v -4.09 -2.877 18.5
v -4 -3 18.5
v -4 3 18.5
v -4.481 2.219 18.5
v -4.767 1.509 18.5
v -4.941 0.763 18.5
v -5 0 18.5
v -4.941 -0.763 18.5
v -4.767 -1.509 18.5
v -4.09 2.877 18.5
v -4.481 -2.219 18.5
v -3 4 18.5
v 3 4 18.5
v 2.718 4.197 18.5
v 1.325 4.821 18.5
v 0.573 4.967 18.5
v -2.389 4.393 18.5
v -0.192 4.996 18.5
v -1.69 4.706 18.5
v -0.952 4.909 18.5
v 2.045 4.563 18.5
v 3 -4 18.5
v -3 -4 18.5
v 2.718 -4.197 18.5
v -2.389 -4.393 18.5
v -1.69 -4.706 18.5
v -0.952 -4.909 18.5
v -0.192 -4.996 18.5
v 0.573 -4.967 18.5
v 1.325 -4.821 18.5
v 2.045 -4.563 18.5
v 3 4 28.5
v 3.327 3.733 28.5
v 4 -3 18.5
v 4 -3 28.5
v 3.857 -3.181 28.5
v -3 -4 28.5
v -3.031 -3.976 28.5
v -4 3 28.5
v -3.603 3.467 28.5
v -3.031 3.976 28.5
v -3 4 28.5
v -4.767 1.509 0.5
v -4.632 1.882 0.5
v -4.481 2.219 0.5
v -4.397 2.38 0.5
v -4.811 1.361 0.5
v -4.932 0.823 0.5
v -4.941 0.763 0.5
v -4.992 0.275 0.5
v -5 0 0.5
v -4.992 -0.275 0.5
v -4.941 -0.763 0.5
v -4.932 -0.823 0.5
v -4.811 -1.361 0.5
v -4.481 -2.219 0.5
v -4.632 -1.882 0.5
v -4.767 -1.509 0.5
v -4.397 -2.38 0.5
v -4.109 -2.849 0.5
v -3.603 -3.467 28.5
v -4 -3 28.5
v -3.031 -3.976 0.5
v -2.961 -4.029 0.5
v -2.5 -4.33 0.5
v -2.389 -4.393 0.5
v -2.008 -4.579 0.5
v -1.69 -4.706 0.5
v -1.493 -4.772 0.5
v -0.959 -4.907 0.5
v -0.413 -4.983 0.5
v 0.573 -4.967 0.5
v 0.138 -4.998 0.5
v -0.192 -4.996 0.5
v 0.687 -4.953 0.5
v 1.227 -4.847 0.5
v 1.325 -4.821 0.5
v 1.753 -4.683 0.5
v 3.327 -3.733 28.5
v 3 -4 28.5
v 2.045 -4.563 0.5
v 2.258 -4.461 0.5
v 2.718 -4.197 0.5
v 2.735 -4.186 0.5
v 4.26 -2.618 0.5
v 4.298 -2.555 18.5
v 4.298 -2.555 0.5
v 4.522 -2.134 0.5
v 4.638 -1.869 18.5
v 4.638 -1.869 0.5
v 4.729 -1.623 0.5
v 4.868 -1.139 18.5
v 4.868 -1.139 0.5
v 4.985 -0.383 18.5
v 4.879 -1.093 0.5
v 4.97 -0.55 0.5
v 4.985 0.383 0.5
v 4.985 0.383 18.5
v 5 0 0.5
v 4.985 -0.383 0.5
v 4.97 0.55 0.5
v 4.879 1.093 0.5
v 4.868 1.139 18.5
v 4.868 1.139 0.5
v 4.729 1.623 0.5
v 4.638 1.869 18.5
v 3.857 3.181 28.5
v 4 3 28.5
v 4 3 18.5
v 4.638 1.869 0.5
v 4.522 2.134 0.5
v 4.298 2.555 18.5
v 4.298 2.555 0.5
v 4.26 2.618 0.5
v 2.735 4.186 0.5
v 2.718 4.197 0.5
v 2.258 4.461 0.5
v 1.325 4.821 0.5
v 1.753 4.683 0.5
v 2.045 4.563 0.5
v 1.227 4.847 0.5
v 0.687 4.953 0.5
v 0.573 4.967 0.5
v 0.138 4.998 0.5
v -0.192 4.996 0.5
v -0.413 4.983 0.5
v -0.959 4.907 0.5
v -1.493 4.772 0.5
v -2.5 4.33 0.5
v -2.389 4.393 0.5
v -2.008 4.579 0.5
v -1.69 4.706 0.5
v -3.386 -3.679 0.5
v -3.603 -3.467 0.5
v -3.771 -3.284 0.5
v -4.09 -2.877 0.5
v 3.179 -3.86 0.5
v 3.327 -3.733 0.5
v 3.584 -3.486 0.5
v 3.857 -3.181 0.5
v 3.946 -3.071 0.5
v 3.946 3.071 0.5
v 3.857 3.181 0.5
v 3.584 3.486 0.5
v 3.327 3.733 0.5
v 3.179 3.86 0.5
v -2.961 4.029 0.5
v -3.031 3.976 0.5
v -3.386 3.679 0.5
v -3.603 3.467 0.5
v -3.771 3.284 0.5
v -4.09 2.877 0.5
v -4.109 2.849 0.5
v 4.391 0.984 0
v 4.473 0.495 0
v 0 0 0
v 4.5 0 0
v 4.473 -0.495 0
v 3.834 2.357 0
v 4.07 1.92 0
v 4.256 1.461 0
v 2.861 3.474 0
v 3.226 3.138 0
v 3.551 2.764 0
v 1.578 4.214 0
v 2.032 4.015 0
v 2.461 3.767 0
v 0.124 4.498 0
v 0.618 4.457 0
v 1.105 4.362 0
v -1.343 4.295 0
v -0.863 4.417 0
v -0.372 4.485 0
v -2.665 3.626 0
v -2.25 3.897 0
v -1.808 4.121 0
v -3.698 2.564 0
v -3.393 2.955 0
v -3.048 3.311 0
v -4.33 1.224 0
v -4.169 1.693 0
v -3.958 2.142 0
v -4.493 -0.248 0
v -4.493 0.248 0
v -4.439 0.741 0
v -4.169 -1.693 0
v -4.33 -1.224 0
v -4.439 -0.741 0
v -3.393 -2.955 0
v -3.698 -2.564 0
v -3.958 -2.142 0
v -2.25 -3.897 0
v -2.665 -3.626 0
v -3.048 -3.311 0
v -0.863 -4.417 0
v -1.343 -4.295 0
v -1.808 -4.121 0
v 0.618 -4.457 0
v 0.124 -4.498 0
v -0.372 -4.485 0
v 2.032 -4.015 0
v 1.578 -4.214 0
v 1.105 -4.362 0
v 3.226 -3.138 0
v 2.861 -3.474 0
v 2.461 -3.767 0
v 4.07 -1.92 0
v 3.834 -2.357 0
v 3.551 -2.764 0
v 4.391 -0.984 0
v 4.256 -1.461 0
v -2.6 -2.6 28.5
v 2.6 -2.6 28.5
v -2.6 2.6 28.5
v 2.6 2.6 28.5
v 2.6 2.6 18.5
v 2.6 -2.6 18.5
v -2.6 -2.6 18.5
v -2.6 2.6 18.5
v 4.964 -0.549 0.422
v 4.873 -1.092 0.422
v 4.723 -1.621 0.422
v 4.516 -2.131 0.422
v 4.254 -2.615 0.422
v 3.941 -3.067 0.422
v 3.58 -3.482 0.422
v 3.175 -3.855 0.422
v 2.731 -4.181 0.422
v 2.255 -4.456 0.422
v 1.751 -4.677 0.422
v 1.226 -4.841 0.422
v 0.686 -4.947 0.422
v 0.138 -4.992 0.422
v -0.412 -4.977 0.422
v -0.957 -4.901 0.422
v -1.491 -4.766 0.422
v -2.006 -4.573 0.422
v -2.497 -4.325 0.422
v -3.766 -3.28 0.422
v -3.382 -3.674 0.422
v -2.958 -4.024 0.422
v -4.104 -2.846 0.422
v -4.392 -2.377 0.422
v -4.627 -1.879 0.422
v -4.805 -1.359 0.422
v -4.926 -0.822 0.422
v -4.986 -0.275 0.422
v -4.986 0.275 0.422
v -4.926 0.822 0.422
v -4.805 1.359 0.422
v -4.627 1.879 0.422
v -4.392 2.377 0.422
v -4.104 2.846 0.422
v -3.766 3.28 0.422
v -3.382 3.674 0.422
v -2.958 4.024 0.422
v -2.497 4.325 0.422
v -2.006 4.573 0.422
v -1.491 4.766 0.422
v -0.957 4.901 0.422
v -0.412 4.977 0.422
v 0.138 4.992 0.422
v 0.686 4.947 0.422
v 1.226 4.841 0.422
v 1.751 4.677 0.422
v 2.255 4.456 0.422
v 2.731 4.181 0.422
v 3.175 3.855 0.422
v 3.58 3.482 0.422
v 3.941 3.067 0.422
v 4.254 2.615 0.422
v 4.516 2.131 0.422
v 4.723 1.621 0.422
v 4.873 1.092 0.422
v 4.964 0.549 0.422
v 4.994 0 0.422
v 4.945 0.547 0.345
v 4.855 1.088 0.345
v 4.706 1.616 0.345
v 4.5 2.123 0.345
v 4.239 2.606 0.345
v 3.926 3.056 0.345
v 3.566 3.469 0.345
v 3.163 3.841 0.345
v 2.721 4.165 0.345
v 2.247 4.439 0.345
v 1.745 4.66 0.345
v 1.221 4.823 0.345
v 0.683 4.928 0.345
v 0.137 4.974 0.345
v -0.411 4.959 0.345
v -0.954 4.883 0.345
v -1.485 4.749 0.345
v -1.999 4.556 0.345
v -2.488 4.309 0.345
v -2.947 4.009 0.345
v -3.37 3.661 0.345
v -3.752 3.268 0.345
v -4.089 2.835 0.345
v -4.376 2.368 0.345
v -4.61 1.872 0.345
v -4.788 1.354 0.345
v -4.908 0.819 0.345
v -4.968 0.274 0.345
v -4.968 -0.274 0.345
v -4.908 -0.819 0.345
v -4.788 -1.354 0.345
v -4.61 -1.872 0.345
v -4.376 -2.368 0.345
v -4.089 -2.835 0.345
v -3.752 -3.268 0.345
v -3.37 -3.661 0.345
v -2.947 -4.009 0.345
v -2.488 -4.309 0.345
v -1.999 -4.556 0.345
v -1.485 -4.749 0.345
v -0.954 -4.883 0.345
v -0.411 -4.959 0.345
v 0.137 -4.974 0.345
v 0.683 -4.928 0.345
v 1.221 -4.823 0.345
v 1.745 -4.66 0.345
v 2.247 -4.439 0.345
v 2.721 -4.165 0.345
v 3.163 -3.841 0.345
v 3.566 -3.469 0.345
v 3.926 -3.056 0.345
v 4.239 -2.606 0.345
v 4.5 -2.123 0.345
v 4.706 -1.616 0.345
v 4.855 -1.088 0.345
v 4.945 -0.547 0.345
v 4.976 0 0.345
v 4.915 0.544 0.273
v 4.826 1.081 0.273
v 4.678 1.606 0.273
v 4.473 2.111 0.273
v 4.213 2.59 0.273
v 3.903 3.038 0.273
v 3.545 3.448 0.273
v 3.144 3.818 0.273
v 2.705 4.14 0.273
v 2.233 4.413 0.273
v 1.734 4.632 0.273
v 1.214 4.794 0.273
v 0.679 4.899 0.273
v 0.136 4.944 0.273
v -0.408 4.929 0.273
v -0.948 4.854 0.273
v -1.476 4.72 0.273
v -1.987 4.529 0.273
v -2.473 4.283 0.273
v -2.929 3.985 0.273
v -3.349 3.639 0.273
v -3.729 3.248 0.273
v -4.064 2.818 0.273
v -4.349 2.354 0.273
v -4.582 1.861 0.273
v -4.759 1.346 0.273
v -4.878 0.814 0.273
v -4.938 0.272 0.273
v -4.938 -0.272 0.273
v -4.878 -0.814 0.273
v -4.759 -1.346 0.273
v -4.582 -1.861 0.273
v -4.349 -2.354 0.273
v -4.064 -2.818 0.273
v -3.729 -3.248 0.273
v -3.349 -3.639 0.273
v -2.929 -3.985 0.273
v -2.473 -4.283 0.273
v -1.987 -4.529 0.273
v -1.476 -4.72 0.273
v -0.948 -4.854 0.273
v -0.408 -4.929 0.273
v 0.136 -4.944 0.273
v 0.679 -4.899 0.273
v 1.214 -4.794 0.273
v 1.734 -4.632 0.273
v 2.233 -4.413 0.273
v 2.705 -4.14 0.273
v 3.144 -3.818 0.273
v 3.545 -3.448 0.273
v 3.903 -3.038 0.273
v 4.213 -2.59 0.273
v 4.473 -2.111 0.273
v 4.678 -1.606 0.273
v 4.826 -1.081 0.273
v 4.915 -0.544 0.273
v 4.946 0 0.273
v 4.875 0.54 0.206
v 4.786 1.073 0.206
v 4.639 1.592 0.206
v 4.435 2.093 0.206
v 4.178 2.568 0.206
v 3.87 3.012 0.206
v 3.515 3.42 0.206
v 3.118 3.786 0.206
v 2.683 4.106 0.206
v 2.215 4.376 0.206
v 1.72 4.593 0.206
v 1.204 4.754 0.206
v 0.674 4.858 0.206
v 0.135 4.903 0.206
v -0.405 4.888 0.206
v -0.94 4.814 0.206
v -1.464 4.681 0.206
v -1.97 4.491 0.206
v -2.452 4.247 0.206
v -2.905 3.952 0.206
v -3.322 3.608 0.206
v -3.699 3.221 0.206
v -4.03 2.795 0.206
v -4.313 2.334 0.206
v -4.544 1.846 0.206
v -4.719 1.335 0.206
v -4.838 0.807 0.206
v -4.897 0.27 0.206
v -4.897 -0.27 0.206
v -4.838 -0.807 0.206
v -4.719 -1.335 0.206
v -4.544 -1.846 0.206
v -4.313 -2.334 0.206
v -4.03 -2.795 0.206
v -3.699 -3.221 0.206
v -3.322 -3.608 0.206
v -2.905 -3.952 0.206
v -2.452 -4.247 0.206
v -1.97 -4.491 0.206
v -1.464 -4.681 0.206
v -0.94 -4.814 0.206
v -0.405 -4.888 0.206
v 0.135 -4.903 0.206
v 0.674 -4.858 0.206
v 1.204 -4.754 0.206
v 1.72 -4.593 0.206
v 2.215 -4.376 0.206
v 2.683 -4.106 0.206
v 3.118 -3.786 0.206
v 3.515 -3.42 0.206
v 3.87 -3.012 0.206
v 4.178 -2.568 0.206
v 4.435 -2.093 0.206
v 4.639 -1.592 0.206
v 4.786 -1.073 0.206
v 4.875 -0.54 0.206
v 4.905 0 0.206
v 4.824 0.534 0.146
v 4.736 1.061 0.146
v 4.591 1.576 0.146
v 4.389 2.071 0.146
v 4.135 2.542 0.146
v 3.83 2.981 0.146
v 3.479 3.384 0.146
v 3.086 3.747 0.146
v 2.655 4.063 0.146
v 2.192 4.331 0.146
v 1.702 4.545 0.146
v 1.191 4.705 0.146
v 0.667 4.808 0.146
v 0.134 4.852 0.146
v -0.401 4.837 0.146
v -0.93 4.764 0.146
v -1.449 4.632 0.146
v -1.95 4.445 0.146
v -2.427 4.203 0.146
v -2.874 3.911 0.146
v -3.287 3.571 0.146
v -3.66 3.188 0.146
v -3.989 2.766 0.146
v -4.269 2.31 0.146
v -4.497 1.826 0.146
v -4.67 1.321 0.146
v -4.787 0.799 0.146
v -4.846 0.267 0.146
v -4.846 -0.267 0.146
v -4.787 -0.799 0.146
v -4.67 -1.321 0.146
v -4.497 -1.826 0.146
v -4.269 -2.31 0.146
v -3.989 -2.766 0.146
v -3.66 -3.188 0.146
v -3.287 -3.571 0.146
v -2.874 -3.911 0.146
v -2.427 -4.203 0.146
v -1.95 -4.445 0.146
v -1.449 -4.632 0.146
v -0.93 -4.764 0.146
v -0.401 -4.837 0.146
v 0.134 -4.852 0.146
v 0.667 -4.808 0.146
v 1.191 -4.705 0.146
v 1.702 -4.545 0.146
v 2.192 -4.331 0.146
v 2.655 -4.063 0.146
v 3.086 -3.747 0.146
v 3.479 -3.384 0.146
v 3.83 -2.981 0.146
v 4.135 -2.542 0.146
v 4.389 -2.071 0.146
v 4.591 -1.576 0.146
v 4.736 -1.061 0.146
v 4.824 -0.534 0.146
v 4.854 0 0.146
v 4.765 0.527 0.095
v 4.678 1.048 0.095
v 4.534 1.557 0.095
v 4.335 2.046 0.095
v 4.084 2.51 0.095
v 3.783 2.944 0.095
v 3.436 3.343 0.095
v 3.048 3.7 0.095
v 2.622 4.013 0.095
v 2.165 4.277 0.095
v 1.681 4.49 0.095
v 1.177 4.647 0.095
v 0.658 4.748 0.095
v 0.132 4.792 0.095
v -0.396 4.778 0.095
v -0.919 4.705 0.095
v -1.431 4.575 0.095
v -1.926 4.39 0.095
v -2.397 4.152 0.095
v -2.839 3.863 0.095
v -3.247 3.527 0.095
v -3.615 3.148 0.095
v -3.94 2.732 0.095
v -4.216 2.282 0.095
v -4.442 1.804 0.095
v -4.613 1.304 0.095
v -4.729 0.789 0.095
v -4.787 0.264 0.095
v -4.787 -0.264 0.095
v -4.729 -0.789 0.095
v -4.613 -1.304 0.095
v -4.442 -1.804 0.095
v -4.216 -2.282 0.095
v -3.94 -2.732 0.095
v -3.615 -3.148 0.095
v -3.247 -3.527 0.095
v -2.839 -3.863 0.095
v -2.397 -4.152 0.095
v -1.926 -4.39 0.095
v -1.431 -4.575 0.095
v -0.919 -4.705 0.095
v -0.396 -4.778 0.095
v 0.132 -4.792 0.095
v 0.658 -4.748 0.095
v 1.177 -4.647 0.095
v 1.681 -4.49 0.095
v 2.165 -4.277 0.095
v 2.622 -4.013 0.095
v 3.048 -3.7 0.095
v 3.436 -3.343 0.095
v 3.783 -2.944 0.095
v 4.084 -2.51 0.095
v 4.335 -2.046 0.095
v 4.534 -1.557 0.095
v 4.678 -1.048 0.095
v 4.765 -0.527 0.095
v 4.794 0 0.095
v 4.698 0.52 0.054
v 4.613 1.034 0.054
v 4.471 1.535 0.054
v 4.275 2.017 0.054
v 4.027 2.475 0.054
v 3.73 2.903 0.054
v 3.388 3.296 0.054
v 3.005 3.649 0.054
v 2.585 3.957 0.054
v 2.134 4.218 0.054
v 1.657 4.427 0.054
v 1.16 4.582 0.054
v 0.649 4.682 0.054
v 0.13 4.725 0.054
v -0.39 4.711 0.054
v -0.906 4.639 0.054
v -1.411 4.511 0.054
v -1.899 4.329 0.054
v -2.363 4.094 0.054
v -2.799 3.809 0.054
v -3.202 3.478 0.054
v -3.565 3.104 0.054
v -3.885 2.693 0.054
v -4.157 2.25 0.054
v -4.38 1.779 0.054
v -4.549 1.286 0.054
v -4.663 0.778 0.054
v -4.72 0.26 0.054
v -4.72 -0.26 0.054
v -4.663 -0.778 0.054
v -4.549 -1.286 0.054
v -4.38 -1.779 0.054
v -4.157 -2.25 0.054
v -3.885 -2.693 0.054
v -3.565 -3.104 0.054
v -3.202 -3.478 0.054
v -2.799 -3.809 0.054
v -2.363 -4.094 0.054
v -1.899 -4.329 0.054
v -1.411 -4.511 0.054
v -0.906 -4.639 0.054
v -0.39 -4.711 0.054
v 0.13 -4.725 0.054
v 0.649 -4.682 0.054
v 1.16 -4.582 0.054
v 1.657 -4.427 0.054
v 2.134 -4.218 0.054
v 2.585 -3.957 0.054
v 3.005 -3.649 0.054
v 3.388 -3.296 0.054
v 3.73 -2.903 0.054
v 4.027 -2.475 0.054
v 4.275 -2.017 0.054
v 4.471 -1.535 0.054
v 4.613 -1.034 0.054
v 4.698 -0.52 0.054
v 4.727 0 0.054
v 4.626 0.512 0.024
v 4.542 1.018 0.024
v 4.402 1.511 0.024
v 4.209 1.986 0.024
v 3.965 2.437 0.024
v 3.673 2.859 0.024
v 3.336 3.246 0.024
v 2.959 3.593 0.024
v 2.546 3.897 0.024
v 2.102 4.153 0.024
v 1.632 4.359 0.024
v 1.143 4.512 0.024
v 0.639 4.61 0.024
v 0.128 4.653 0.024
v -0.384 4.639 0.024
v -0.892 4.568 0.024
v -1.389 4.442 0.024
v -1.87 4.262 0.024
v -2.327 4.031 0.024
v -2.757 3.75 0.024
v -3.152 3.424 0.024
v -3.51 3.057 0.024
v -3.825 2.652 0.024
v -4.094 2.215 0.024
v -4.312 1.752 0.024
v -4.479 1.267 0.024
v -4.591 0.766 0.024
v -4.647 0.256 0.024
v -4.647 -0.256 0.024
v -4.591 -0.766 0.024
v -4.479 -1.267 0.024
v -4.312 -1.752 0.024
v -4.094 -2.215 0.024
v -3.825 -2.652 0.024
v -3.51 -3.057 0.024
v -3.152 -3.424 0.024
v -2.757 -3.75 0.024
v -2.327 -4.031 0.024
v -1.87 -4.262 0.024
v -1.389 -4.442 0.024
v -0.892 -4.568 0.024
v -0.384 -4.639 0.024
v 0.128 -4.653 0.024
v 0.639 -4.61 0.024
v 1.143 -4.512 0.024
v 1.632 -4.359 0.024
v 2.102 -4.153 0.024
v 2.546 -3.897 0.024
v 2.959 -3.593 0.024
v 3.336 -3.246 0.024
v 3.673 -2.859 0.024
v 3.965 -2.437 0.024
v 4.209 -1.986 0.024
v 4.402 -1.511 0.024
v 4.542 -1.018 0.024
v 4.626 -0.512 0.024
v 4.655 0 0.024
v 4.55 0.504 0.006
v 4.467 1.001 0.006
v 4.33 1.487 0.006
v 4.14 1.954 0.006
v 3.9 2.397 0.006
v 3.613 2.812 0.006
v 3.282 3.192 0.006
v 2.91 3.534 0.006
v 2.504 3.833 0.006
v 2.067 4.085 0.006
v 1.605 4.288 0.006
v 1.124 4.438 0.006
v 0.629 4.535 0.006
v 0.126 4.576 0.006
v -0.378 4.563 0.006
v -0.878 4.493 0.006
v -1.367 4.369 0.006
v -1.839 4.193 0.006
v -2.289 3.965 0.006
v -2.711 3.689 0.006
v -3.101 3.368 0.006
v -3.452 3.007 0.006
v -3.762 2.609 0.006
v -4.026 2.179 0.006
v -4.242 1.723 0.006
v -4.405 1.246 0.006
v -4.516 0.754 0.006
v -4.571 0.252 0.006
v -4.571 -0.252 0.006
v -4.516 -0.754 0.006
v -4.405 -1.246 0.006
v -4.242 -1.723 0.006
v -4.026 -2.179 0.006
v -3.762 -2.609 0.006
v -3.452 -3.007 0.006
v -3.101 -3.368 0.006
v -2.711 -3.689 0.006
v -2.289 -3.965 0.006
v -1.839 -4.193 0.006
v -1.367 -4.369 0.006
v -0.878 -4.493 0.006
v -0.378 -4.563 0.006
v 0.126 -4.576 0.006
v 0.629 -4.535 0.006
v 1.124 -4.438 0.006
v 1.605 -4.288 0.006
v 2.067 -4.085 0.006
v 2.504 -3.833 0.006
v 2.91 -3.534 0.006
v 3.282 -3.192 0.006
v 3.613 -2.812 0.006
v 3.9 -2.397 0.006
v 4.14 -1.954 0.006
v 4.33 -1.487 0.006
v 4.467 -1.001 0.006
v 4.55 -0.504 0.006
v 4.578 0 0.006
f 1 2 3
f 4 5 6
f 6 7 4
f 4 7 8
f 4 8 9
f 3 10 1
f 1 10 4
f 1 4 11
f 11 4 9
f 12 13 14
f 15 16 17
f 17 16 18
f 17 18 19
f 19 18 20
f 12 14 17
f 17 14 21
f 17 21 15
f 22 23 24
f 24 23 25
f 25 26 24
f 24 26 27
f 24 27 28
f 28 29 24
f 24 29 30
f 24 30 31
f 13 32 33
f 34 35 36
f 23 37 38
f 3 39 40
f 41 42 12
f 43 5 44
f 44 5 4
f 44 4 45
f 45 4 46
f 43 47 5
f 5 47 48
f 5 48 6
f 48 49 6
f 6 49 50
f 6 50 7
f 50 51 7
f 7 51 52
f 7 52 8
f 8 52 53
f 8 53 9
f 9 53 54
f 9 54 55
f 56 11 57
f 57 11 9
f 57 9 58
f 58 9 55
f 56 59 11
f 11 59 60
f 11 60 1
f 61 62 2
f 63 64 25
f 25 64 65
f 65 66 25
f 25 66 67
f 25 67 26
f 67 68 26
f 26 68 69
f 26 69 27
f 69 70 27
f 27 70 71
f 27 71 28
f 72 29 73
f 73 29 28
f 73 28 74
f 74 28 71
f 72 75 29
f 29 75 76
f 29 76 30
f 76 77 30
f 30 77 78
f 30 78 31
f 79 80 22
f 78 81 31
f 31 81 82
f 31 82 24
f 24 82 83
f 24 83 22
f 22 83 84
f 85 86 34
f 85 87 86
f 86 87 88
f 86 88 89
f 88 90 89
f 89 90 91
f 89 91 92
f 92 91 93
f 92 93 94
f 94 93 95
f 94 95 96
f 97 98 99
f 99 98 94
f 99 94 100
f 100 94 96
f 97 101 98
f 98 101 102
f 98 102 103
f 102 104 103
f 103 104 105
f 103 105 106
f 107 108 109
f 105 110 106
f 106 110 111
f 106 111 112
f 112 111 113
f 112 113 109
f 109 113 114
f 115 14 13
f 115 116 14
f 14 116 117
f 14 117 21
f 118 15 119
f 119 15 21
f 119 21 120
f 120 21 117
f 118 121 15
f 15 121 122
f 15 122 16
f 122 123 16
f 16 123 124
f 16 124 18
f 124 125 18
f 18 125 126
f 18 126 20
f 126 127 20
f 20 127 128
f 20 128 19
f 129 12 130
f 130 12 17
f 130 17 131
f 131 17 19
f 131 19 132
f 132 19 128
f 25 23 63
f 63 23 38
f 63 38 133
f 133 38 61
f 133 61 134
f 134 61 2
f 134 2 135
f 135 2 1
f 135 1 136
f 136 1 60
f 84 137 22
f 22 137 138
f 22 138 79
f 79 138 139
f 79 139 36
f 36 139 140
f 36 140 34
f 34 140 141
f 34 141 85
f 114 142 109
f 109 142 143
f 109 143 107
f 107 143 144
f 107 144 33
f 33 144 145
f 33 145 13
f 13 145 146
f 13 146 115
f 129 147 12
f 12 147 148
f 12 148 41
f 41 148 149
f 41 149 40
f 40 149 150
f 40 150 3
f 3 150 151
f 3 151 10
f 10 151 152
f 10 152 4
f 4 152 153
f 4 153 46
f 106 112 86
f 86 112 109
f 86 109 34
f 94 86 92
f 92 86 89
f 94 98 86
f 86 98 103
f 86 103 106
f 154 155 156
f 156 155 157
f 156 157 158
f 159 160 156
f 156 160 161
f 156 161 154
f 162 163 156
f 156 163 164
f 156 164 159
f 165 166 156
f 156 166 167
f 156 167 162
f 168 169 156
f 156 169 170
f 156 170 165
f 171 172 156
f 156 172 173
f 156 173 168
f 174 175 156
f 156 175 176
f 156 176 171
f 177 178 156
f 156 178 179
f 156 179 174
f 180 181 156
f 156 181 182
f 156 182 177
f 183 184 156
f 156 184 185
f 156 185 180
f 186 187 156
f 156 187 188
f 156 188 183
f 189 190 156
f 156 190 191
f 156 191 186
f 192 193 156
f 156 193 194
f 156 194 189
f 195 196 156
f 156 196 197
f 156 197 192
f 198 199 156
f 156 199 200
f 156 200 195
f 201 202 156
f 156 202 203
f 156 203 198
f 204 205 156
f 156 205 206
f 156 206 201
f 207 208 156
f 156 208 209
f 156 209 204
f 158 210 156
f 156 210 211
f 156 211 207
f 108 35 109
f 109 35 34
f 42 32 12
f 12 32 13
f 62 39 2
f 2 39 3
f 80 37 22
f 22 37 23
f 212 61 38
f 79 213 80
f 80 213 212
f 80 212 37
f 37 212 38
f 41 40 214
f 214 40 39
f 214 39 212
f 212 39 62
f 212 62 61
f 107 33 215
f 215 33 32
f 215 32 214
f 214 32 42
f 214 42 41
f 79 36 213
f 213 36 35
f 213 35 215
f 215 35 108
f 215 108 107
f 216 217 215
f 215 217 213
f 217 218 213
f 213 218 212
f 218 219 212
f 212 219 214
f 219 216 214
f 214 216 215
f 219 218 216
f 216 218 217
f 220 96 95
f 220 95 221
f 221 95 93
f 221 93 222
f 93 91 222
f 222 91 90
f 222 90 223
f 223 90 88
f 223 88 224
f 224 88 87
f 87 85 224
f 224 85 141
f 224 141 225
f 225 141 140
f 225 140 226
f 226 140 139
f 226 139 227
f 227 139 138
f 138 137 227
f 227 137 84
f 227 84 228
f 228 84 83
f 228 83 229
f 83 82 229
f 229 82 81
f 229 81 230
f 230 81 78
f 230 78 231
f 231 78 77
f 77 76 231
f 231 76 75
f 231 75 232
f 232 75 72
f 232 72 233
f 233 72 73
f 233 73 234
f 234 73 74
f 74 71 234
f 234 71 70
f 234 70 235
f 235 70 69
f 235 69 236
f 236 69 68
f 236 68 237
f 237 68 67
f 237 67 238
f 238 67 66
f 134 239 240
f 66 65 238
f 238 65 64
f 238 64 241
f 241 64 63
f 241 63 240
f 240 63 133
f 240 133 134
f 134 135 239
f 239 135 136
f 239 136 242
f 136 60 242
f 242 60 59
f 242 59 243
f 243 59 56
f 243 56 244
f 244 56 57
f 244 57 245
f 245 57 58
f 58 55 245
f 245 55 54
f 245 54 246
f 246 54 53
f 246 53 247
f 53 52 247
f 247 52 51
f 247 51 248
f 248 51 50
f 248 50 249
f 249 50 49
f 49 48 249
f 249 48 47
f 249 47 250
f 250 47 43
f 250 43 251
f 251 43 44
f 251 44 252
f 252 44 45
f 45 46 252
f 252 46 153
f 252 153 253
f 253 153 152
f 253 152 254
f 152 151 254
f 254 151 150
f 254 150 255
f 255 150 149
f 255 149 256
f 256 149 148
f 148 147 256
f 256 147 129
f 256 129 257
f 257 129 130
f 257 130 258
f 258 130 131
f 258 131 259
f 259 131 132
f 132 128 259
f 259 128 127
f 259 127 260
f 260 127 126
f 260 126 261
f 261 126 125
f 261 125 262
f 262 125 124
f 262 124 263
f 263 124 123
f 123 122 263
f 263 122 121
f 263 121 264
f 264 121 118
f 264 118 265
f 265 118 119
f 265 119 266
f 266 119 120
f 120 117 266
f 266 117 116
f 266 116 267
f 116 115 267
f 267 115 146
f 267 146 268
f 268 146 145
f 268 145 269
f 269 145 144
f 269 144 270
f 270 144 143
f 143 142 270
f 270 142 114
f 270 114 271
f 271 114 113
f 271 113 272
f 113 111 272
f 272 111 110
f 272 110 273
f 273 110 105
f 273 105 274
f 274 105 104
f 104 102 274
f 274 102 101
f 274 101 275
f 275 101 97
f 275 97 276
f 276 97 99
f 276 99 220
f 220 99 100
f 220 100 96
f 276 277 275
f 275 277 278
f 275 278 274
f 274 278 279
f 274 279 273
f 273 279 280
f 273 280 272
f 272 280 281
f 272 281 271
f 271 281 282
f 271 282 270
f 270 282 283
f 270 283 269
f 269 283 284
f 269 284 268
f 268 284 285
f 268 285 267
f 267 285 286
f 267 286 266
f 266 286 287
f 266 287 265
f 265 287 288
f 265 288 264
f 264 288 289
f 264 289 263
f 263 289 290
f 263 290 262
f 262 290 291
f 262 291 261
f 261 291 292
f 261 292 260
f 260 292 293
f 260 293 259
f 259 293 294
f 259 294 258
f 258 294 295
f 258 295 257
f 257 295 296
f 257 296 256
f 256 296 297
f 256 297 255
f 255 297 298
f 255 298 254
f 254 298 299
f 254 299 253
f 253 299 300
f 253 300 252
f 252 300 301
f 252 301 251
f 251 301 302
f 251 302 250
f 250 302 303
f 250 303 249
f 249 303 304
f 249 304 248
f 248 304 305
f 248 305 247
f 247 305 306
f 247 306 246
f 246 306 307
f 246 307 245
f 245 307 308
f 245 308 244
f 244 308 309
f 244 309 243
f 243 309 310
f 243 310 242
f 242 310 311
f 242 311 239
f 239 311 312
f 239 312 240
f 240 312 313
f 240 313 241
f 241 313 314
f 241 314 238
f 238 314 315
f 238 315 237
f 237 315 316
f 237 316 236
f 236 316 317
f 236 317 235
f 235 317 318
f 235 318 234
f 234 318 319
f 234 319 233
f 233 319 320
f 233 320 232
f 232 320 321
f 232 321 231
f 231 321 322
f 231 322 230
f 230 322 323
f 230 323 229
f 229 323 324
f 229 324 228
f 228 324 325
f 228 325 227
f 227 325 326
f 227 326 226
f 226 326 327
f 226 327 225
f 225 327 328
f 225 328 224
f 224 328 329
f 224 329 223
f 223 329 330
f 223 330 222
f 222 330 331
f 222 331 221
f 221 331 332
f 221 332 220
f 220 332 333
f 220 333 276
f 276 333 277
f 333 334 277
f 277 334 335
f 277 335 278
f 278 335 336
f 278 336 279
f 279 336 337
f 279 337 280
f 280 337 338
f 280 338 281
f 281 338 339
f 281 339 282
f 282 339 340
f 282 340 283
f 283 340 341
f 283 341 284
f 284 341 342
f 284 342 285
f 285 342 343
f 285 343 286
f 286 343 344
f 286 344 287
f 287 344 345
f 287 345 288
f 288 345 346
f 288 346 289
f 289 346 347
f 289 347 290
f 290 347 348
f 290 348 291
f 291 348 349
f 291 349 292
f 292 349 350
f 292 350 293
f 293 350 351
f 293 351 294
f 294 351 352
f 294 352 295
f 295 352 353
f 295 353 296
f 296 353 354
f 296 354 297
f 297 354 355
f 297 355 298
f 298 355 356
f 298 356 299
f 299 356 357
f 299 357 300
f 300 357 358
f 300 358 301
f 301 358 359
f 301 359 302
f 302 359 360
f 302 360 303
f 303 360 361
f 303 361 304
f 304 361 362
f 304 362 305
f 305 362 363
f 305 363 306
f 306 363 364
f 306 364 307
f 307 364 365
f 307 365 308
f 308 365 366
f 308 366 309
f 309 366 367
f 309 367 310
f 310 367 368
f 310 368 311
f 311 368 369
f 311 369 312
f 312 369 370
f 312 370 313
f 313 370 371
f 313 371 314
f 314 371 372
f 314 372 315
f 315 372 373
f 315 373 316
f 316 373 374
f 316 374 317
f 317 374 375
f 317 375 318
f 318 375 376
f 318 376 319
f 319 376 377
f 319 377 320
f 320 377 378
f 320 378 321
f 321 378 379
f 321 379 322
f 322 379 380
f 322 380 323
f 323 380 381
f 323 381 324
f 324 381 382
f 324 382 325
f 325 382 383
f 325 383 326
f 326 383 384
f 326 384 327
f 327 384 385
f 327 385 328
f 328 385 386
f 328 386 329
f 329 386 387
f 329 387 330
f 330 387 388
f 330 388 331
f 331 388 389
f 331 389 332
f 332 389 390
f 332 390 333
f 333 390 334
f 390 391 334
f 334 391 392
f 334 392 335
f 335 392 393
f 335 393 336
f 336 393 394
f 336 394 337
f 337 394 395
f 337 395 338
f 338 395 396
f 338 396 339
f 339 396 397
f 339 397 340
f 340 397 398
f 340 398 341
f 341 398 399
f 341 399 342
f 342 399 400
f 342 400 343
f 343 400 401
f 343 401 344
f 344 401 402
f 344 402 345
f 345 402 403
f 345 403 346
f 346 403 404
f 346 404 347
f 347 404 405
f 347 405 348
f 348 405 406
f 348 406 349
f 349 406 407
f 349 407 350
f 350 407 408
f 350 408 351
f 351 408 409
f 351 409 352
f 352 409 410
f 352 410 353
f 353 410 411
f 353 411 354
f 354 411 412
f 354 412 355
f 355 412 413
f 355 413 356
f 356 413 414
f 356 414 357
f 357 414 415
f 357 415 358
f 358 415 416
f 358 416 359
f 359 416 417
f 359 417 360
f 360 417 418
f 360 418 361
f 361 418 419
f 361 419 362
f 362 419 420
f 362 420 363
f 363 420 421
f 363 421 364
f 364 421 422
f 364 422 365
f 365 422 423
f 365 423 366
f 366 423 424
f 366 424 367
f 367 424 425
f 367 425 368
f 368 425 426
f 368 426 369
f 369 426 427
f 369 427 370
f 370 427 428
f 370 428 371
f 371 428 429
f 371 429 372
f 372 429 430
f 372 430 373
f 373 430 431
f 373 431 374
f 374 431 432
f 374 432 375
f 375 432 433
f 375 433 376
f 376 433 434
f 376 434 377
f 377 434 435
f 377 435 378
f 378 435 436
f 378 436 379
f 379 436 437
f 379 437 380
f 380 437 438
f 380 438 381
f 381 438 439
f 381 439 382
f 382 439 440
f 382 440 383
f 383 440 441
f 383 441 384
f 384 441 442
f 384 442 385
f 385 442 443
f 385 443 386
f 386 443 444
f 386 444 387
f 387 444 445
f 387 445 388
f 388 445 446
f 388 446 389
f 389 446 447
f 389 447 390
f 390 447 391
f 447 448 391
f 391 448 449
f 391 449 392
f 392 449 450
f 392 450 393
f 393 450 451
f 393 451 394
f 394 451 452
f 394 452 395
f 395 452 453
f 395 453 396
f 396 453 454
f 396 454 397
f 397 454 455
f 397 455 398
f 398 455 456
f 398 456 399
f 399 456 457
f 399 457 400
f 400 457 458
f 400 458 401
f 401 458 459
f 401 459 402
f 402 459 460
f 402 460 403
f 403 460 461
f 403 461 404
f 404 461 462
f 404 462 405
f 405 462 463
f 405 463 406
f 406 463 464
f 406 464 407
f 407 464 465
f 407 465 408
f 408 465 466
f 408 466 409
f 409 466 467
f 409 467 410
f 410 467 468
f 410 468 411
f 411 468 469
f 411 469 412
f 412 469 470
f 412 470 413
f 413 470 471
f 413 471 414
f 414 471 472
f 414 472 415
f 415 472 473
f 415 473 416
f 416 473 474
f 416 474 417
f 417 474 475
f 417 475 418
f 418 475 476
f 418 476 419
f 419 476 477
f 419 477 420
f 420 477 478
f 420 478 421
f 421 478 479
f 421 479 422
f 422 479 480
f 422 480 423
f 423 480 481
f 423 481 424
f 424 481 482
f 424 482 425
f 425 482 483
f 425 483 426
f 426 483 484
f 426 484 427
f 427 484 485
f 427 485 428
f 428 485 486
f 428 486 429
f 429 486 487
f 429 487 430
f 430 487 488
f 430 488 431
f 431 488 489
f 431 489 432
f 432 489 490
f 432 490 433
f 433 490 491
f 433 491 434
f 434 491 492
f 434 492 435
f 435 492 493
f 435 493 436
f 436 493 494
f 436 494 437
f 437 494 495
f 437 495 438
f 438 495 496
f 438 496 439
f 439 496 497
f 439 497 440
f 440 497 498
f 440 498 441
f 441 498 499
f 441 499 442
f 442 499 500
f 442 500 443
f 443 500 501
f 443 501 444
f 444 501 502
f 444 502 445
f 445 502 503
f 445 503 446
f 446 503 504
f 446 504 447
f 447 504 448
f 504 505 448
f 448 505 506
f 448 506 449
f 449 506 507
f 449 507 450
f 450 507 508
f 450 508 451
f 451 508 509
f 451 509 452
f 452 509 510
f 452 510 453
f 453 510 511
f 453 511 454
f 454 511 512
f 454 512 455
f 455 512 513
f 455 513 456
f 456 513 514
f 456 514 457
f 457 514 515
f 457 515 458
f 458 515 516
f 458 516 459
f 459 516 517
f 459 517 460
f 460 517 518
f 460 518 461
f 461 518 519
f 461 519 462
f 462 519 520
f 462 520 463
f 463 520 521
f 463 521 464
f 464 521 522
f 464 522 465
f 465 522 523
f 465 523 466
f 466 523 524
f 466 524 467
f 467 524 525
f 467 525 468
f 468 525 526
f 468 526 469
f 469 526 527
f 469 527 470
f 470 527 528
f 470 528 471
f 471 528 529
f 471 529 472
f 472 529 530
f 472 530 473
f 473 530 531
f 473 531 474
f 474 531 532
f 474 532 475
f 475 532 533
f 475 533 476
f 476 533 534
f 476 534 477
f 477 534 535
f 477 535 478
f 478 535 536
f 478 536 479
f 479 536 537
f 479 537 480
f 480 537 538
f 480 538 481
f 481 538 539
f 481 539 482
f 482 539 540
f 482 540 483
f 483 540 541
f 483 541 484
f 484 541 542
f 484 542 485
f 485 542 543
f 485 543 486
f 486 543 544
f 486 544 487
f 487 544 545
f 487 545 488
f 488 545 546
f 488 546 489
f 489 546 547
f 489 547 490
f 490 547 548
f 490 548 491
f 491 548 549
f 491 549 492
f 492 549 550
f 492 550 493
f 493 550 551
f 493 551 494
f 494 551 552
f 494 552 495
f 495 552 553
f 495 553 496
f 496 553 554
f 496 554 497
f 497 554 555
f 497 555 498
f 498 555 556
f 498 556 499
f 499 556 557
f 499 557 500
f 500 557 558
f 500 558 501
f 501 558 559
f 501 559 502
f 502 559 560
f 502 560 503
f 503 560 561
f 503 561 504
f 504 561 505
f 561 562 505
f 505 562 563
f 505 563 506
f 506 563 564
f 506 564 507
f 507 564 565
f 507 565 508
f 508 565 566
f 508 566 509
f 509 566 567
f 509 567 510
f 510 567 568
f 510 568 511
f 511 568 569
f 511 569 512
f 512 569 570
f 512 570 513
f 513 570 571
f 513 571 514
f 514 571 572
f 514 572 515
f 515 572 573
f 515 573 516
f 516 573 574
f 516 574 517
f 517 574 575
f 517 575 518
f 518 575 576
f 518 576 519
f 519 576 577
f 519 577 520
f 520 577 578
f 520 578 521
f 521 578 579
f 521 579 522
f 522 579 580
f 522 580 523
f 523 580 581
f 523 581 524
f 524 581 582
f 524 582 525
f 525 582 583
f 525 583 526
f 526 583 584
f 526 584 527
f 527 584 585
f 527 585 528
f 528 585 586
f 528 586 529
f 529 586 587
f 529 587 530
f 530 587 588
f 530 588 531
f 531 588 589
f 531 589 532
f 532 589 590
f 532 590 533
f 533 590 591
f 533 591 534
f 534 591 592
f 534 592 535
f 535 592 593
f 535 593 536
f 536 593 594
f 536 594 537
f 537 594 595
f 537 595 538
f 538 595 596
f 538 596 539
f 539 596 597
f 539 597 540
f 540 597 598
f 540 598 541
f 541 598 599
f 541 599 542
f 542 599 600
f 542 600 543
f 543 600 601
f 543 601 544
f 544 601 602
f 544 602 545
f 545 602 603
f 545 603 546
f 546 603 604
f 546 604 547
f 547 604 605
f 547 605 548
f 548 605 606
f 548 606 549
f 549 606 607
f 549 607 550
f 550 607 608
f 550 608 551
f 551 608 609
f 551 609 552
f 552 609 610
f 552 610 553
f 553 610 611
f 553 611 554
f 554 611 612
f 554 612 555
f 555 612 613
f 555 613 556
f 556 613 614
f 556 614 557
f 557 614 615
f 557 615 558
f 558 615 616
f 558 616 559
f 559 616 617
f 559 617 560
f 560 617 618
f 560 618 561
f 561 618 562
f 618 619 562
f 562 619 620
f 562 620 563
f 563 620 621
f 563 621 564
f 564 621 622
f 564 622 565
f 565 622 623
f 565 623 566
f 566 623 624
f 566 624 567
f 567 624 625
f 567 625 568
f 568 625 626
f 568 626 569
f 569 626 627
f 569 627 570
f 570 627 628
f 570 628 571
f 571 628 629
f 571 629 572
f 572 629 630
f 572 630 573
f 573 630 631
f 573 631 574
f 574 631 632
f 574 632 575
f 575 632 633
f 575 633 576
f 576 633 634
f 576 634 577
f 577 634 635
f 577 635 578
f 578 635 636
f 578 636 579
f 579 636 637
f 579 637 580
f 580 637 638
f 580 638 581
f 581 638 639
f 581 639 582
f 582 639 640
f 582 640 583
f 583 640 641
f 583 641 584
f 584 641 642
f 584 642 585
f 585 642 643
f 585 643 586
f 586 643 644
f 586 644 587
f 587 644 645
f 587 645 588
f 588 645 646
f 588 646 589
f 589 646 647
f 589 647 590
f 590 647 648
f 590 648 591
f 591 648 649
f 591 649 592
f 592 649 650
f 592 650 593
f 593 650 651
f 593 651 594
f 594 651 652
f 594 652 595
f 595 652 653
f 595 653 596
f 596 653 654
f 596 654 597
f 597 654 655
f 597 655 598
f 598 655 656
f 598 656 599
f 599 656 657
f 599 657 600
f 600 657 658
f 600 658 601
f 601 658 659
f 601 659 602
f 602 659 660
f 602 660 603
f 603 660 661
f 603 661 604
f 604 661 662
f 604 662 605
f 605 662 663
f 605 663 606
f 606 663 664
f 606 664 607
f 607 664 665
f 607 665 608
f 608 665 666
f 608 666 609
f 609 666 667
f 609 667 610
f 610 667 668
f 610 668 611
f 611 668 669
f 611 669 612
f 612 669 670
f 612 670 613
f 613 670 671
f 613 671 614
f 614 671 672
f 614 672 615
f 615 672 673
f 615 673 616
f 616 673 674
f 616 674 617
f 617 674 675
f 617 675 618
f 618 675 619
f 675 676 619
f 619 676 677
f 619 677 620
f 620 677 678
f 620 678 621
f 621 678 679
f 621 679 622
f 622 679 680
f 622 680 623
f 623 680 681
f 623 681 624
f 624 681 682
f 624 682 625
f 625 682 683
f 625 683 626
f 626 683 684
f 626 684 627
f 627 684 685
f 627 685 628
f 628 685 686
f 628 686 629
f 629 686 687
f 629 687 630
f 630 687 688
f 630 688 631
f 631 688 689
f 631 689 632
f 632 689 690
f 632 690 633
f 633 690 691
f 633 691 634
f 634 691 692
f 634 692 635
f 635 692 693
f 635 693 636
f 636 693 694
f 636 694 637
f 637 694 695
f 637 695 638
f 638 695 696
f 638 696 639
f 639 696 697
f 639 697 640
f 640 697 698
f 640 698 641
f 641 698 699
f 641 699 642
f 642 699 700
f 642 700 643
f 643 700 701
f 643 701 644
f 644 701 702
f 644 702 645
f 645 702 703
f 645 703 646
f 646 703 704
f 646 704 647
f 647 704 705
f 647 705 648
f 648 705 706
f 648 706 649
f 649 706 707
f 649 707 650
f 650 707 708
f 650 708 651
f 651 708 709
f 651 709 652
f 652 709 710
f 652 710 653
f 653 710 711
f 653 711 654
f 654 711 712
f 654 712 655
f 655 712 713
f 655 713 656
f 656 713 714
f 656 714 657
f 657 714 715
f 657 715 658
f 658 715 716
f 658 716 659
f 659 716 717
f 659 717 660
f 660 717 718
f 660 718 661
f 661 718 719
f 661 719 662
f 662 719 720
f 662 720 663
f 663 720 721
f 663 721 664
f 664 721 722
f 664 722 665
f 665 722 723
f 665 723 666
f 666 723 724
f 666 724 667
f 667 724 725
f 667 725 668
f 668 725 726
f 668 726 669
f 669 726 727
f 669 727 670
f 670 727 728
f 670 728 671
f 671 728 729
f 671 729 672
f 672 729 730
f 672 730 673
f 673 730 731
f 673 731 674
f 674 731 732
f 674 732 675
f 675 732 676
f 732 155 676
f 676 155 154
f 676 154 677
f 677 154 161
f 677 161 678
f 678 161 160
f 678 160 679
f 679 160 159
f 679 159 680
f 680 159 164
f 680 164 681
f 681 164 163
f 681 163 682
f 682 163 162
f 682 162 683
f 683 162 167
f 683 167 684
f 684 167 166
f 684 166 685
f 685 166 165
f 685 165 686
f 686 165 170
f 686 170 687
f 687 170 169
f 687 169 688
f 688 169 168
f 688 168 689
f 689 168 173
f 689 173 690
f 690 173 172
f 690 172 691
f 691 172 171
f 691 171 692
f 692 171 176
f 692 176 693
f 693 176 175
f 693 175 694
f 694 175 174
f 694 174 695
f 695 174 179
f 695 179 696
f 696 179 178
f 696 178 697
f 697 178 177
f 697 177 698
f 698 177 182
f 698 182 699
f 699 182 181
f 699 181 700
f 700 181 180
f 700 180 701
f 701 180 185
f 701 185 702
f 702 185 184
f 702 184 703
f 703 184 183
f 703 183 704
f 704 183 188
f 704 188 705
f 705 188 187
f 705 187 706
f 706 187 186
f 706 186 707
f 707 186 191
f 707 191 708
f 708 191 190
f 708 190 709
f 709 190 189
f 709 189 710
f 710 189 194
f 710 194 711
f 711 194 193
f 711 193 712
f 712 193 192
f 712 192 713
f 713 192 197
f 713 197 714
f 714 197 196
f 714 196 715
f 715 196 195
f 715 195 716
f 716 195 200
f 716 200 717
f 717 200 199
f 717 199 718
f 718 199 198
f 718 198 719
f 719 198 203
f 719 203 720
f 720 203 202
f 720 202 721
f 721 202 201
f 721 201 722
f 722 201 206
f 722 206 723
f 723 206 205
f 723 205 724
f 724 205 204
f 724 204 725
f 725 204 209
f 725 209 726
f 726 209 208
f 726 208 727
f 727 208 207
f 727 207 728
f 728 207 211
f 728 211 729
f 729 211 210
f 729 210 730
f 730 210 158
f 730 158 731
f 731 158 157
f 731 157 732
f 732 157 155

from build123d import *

# Parameters (mm, degrees)
SKETCH1_R           = 5
BOSS_EXTRUDE1_DEPTH = 18.5
BOSS_EXTRUDE2_DEPTH = 10
SKETCH4_W           = 5.2
SKETCH4_H           = 5.2
CUT_EXTRUDE2_DEPTH  = 10
FILLET1_R           = 0.5


with BuildPart() as part:
    # Sketch1 → Boss-Extrude1 (new body)
    with BuildSketch(Plane.XY):
        Circle(SKETCH1_R)
    extrude(amount=BOSS_EXTRUDE1_DEPTH)

    # Sketch3 → Boss-Extrude2 (add)
    with BuildSketch(Plane.XY.offset(18.5)):
        with BuildLine():
            ThreePointArc((-4, -3), (-3.535533906, -3.535533906), (-3, -4))
            Line((-3, -4), (3, -4))
            ThreePointArc((3, -4), (3.535533906, -3.535533906), (4, -3))
            Line((4, -3), (4, 3))
            ThreePointArc((4, 3), (3.535533906, 3.535533906), (3, 4))
            Line((3, 4), (-3, 4))
            ThreePointArc((-3, 4), (-3.535533906, 3.535533906), (-4, 3))
            Line((-4, 3), (-4, -3))
        make_face()
    extrude(amount=BOSS_EXTRUDE2_DEPTH)

    # Sketch4 → Cut-Extrude2 (cut)
    with BuildSketch(Plane.XY.offset(28.5)):
        Rectangle(SKETCH4_W, SKETCH4_H)
    extrude(amount=-CUT_EXTRUDE2_DEPTH, mode=Mode.SUBTRACT)

    # Fillet1
    fillet1_edges = [part.edges().sort_by_distance(p)[0] for p in [
        (-5, 0, 0),
    ]]
    fillet(fillet1_edges, radius=FILLET1_R)


solid = part.part
